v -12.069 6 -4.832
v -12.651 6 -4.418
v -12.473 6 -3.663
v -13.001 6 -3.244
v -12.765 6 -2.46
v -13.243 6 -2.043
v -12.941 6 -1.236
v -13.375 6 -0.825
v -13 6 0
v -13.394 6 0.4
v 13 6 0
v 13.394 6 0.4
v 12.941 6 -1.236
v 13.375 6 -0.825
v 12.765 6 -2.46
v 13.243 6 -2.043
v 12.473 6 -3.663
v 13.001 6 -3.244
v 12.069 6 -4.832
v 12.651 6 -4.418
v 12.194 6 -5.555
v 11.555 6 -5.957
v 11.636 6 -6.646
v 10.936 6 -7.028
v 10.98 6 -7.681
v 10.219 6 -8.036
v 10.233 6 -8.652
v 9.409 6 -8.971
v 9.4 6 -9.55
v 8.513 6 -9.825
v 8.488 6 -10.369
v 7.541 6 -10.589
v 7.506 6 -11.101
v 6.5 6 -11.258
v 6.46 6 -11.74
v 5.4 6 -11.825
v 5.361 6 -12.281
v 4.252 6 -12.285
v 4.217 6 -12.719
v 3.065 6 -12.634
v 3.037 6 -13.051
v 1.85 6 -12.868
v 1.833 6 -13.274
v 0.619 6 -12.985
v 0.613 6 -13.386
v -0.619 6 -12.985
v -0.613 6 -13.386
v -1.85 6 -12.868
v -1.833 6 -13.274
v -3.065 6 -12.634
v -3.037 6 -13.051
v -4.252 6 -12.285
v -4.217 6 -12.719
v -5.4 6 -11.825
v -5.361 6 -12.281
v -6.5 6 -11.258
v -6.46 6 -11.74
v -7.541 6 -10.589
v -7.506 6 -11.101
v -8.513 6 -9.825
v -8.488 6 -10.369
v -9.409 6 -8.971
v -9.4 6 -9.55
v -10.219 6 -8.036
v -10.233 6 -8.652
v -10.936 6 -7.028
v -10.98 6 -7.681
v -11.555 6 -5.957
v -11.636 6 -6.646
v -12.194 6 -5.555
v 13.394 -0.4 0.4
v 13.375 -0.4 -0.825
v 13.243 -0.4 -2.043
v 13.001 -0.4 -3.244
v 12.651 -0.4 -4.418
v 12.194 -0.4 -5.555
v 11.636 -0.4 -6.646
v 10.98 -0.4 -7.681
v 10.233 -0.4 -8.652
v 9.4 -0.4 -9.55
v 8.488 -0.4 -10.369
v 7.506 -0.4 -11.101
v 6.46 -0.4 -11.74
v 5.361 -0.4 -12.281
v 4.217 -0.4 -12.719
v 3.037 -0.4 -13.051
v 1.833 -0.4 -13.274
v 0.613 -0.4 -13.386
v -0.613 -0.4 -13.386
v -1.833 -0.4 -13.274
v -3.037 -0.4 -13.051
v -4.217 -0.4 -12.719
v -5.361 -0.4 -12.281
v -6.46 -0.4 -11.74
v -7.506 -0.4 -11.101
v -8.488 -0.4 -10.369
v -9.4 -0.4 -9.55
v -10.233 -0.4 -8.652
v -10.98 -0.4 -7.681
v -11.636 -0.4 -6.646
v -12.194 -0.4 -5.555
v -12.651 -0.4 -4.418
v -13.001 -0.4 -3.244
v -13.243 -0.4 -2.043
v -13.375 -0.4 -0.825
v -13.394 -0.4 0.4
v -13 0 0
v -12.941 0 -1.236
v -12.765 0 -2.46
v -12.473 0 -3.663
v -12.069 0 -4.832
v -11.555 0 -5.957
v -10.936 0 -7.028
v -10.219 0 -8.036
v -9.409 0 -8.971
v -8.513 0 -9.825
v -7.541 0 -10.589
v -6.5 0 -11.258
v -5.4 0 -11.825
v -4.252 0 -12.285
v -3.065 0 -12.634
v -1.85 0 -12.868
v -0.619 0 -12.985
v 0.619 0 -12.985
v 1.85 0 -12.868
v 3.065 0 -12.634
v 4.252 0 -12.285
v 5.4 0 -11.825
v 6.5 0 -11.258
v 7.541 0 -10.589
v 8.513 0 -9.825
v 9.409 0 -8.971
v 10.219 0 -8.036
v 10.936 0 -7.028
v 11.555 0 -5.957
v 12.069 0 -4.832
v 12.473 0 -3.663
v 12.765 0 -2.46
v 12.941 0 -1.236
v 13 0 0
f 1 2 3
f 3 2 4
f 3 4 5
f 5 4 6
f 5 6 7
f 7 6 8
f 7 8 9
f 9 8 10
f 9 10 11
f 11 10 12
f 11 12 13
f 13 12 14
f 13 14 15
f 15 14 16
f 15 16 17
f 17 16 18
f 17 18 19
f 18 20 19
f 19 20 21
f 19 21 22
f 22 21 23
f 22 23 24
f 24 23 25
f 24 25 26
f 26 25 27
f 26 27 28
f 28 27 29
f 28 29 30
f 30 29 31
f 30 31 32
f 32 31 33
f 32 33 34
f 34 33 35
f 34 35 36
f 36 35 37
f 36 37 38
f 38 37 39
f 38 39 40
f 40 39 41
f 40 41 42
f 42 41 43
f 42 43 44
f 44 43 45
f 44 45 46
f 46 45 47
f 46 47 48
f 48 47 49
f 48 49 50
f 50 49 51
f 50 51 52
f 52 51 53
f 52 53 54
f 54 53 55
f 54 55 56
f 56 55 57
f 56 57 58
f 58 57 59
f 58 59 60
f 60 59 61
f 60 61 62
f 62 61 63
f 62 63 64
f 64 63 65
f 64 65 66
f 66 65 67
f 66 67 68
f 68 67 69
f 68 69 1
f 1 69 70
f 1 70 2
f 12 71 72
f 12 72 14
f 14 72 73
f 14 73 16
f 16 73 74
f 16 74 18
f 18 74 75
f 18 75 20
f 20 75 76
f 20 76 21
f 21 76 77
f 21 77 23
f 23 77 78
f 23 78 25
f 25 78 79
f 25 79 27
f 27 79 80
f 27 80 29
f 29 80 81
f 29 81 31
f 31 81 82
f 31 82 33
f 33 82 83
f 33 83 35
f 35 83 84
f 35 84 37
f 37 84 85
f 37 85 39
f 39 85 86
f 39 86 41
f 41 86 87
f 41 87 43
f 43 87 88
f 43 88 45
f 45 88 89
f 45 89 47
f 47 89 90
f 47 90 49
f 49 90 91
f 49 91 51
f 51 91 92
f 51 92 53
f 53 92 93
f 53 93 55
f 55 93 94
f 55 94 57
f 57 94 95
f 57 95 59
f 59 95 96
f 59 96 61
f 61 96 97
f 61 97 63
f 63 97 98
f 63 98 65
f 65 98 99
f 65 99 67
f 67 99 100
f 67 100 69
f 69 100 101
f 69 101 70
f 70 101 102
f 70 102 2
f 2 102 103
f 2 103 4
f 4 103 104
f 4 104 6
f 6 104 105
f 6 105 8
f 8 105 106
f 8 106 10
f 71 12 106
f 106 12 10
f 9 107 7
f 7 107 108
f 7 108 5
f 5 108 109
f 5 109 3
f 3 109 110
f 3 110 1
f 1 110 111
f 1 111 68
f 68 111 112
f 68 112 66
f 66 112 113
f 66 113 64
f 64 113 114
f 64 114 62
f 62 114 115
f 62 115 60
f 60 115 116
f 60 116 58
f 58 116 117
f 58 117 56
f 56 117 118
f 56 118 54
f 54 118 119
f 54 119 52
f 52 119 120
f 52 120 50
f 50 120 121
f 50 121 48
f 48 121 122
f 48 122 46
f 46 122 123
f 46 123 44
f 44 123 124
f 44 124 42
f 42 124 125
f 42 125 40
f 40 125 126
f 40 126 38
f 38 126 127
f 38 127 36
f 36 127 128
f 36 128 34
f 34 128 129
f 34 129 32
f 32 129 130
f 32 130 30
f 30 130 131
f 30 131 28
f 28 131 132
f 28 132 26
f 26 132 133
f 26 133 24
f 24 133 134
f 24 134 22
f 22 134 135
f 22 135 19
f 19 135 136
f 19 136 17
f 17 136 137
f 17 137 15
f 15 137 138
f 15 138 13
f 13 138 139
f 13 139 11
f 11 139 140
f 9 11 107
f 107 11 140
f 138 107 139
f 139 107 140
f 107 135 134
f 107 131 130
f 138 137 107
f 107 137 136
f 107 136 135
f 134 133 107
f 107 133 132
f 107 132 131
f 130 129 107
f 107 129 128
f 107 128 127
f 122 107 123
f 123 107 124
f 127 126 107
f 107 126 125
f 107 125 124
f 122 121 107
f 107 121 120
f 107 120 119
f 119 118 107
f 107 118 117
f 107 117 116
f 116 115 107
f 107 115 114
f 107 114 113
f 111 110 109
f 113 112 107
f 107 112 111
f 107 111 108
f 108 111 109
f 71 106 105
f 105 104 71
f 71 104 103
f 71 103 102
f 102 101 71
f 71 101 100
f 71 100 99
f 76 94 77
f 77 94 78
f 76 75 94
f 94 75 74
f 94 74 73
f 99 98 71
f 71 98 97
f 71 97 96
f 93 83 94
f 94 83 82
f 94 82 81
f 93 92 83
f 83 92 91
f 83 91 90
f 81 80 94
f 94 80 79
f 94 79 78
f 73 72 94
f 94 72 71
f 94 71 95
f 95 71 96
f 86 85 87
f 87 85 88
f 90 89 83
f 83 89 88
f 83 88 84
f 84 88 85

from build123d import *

# Parameters (mm, degrees)
BOSS_EXTRUDE2_DEPTH = 6
BOSS_EXTRUDE3_DEPTH = 0.4


with BuildPart() as part:
    # Sketch3 → Boss-Extrude2 (new body)
    with BuildSketch(Plane(origin=(0, 0, 0), x_dir=(1, 0, 0), z_dir=(0, 1, 0))):
        with BuildLine():
            Line((-13.39402852, -0.4), (13.39402852, -0.4))
            ThreePointArc((13.39402852, -0.4), (0, 13.4), (-13.39402852, -0.4))
        make_face()
        with BuildLine():
            Line((-13, 0), (13, 0))
            ThreePointArc((13, 0), (0, 13), (-13, 0))
        make_face(mode=Mode.SUBTRACT)
    extrude(amount=BOSS_EXTRUDE2_DEPTH)

    # Sketch4 → Boss-Extrude3 (add)
    with BuildSketch(Plane.XZ):
        with BuildLine():
            Line((-13.39402852, 0.4), (13.39402852, 0.4))
            ThreePointArc((13.39402852, 0.4), (0, -13.4), (-13.39402852, 0.4))
        make_face()
    extrude(amount=BOSS_EXTRUDE3_DEPTH)


solid = part.part
